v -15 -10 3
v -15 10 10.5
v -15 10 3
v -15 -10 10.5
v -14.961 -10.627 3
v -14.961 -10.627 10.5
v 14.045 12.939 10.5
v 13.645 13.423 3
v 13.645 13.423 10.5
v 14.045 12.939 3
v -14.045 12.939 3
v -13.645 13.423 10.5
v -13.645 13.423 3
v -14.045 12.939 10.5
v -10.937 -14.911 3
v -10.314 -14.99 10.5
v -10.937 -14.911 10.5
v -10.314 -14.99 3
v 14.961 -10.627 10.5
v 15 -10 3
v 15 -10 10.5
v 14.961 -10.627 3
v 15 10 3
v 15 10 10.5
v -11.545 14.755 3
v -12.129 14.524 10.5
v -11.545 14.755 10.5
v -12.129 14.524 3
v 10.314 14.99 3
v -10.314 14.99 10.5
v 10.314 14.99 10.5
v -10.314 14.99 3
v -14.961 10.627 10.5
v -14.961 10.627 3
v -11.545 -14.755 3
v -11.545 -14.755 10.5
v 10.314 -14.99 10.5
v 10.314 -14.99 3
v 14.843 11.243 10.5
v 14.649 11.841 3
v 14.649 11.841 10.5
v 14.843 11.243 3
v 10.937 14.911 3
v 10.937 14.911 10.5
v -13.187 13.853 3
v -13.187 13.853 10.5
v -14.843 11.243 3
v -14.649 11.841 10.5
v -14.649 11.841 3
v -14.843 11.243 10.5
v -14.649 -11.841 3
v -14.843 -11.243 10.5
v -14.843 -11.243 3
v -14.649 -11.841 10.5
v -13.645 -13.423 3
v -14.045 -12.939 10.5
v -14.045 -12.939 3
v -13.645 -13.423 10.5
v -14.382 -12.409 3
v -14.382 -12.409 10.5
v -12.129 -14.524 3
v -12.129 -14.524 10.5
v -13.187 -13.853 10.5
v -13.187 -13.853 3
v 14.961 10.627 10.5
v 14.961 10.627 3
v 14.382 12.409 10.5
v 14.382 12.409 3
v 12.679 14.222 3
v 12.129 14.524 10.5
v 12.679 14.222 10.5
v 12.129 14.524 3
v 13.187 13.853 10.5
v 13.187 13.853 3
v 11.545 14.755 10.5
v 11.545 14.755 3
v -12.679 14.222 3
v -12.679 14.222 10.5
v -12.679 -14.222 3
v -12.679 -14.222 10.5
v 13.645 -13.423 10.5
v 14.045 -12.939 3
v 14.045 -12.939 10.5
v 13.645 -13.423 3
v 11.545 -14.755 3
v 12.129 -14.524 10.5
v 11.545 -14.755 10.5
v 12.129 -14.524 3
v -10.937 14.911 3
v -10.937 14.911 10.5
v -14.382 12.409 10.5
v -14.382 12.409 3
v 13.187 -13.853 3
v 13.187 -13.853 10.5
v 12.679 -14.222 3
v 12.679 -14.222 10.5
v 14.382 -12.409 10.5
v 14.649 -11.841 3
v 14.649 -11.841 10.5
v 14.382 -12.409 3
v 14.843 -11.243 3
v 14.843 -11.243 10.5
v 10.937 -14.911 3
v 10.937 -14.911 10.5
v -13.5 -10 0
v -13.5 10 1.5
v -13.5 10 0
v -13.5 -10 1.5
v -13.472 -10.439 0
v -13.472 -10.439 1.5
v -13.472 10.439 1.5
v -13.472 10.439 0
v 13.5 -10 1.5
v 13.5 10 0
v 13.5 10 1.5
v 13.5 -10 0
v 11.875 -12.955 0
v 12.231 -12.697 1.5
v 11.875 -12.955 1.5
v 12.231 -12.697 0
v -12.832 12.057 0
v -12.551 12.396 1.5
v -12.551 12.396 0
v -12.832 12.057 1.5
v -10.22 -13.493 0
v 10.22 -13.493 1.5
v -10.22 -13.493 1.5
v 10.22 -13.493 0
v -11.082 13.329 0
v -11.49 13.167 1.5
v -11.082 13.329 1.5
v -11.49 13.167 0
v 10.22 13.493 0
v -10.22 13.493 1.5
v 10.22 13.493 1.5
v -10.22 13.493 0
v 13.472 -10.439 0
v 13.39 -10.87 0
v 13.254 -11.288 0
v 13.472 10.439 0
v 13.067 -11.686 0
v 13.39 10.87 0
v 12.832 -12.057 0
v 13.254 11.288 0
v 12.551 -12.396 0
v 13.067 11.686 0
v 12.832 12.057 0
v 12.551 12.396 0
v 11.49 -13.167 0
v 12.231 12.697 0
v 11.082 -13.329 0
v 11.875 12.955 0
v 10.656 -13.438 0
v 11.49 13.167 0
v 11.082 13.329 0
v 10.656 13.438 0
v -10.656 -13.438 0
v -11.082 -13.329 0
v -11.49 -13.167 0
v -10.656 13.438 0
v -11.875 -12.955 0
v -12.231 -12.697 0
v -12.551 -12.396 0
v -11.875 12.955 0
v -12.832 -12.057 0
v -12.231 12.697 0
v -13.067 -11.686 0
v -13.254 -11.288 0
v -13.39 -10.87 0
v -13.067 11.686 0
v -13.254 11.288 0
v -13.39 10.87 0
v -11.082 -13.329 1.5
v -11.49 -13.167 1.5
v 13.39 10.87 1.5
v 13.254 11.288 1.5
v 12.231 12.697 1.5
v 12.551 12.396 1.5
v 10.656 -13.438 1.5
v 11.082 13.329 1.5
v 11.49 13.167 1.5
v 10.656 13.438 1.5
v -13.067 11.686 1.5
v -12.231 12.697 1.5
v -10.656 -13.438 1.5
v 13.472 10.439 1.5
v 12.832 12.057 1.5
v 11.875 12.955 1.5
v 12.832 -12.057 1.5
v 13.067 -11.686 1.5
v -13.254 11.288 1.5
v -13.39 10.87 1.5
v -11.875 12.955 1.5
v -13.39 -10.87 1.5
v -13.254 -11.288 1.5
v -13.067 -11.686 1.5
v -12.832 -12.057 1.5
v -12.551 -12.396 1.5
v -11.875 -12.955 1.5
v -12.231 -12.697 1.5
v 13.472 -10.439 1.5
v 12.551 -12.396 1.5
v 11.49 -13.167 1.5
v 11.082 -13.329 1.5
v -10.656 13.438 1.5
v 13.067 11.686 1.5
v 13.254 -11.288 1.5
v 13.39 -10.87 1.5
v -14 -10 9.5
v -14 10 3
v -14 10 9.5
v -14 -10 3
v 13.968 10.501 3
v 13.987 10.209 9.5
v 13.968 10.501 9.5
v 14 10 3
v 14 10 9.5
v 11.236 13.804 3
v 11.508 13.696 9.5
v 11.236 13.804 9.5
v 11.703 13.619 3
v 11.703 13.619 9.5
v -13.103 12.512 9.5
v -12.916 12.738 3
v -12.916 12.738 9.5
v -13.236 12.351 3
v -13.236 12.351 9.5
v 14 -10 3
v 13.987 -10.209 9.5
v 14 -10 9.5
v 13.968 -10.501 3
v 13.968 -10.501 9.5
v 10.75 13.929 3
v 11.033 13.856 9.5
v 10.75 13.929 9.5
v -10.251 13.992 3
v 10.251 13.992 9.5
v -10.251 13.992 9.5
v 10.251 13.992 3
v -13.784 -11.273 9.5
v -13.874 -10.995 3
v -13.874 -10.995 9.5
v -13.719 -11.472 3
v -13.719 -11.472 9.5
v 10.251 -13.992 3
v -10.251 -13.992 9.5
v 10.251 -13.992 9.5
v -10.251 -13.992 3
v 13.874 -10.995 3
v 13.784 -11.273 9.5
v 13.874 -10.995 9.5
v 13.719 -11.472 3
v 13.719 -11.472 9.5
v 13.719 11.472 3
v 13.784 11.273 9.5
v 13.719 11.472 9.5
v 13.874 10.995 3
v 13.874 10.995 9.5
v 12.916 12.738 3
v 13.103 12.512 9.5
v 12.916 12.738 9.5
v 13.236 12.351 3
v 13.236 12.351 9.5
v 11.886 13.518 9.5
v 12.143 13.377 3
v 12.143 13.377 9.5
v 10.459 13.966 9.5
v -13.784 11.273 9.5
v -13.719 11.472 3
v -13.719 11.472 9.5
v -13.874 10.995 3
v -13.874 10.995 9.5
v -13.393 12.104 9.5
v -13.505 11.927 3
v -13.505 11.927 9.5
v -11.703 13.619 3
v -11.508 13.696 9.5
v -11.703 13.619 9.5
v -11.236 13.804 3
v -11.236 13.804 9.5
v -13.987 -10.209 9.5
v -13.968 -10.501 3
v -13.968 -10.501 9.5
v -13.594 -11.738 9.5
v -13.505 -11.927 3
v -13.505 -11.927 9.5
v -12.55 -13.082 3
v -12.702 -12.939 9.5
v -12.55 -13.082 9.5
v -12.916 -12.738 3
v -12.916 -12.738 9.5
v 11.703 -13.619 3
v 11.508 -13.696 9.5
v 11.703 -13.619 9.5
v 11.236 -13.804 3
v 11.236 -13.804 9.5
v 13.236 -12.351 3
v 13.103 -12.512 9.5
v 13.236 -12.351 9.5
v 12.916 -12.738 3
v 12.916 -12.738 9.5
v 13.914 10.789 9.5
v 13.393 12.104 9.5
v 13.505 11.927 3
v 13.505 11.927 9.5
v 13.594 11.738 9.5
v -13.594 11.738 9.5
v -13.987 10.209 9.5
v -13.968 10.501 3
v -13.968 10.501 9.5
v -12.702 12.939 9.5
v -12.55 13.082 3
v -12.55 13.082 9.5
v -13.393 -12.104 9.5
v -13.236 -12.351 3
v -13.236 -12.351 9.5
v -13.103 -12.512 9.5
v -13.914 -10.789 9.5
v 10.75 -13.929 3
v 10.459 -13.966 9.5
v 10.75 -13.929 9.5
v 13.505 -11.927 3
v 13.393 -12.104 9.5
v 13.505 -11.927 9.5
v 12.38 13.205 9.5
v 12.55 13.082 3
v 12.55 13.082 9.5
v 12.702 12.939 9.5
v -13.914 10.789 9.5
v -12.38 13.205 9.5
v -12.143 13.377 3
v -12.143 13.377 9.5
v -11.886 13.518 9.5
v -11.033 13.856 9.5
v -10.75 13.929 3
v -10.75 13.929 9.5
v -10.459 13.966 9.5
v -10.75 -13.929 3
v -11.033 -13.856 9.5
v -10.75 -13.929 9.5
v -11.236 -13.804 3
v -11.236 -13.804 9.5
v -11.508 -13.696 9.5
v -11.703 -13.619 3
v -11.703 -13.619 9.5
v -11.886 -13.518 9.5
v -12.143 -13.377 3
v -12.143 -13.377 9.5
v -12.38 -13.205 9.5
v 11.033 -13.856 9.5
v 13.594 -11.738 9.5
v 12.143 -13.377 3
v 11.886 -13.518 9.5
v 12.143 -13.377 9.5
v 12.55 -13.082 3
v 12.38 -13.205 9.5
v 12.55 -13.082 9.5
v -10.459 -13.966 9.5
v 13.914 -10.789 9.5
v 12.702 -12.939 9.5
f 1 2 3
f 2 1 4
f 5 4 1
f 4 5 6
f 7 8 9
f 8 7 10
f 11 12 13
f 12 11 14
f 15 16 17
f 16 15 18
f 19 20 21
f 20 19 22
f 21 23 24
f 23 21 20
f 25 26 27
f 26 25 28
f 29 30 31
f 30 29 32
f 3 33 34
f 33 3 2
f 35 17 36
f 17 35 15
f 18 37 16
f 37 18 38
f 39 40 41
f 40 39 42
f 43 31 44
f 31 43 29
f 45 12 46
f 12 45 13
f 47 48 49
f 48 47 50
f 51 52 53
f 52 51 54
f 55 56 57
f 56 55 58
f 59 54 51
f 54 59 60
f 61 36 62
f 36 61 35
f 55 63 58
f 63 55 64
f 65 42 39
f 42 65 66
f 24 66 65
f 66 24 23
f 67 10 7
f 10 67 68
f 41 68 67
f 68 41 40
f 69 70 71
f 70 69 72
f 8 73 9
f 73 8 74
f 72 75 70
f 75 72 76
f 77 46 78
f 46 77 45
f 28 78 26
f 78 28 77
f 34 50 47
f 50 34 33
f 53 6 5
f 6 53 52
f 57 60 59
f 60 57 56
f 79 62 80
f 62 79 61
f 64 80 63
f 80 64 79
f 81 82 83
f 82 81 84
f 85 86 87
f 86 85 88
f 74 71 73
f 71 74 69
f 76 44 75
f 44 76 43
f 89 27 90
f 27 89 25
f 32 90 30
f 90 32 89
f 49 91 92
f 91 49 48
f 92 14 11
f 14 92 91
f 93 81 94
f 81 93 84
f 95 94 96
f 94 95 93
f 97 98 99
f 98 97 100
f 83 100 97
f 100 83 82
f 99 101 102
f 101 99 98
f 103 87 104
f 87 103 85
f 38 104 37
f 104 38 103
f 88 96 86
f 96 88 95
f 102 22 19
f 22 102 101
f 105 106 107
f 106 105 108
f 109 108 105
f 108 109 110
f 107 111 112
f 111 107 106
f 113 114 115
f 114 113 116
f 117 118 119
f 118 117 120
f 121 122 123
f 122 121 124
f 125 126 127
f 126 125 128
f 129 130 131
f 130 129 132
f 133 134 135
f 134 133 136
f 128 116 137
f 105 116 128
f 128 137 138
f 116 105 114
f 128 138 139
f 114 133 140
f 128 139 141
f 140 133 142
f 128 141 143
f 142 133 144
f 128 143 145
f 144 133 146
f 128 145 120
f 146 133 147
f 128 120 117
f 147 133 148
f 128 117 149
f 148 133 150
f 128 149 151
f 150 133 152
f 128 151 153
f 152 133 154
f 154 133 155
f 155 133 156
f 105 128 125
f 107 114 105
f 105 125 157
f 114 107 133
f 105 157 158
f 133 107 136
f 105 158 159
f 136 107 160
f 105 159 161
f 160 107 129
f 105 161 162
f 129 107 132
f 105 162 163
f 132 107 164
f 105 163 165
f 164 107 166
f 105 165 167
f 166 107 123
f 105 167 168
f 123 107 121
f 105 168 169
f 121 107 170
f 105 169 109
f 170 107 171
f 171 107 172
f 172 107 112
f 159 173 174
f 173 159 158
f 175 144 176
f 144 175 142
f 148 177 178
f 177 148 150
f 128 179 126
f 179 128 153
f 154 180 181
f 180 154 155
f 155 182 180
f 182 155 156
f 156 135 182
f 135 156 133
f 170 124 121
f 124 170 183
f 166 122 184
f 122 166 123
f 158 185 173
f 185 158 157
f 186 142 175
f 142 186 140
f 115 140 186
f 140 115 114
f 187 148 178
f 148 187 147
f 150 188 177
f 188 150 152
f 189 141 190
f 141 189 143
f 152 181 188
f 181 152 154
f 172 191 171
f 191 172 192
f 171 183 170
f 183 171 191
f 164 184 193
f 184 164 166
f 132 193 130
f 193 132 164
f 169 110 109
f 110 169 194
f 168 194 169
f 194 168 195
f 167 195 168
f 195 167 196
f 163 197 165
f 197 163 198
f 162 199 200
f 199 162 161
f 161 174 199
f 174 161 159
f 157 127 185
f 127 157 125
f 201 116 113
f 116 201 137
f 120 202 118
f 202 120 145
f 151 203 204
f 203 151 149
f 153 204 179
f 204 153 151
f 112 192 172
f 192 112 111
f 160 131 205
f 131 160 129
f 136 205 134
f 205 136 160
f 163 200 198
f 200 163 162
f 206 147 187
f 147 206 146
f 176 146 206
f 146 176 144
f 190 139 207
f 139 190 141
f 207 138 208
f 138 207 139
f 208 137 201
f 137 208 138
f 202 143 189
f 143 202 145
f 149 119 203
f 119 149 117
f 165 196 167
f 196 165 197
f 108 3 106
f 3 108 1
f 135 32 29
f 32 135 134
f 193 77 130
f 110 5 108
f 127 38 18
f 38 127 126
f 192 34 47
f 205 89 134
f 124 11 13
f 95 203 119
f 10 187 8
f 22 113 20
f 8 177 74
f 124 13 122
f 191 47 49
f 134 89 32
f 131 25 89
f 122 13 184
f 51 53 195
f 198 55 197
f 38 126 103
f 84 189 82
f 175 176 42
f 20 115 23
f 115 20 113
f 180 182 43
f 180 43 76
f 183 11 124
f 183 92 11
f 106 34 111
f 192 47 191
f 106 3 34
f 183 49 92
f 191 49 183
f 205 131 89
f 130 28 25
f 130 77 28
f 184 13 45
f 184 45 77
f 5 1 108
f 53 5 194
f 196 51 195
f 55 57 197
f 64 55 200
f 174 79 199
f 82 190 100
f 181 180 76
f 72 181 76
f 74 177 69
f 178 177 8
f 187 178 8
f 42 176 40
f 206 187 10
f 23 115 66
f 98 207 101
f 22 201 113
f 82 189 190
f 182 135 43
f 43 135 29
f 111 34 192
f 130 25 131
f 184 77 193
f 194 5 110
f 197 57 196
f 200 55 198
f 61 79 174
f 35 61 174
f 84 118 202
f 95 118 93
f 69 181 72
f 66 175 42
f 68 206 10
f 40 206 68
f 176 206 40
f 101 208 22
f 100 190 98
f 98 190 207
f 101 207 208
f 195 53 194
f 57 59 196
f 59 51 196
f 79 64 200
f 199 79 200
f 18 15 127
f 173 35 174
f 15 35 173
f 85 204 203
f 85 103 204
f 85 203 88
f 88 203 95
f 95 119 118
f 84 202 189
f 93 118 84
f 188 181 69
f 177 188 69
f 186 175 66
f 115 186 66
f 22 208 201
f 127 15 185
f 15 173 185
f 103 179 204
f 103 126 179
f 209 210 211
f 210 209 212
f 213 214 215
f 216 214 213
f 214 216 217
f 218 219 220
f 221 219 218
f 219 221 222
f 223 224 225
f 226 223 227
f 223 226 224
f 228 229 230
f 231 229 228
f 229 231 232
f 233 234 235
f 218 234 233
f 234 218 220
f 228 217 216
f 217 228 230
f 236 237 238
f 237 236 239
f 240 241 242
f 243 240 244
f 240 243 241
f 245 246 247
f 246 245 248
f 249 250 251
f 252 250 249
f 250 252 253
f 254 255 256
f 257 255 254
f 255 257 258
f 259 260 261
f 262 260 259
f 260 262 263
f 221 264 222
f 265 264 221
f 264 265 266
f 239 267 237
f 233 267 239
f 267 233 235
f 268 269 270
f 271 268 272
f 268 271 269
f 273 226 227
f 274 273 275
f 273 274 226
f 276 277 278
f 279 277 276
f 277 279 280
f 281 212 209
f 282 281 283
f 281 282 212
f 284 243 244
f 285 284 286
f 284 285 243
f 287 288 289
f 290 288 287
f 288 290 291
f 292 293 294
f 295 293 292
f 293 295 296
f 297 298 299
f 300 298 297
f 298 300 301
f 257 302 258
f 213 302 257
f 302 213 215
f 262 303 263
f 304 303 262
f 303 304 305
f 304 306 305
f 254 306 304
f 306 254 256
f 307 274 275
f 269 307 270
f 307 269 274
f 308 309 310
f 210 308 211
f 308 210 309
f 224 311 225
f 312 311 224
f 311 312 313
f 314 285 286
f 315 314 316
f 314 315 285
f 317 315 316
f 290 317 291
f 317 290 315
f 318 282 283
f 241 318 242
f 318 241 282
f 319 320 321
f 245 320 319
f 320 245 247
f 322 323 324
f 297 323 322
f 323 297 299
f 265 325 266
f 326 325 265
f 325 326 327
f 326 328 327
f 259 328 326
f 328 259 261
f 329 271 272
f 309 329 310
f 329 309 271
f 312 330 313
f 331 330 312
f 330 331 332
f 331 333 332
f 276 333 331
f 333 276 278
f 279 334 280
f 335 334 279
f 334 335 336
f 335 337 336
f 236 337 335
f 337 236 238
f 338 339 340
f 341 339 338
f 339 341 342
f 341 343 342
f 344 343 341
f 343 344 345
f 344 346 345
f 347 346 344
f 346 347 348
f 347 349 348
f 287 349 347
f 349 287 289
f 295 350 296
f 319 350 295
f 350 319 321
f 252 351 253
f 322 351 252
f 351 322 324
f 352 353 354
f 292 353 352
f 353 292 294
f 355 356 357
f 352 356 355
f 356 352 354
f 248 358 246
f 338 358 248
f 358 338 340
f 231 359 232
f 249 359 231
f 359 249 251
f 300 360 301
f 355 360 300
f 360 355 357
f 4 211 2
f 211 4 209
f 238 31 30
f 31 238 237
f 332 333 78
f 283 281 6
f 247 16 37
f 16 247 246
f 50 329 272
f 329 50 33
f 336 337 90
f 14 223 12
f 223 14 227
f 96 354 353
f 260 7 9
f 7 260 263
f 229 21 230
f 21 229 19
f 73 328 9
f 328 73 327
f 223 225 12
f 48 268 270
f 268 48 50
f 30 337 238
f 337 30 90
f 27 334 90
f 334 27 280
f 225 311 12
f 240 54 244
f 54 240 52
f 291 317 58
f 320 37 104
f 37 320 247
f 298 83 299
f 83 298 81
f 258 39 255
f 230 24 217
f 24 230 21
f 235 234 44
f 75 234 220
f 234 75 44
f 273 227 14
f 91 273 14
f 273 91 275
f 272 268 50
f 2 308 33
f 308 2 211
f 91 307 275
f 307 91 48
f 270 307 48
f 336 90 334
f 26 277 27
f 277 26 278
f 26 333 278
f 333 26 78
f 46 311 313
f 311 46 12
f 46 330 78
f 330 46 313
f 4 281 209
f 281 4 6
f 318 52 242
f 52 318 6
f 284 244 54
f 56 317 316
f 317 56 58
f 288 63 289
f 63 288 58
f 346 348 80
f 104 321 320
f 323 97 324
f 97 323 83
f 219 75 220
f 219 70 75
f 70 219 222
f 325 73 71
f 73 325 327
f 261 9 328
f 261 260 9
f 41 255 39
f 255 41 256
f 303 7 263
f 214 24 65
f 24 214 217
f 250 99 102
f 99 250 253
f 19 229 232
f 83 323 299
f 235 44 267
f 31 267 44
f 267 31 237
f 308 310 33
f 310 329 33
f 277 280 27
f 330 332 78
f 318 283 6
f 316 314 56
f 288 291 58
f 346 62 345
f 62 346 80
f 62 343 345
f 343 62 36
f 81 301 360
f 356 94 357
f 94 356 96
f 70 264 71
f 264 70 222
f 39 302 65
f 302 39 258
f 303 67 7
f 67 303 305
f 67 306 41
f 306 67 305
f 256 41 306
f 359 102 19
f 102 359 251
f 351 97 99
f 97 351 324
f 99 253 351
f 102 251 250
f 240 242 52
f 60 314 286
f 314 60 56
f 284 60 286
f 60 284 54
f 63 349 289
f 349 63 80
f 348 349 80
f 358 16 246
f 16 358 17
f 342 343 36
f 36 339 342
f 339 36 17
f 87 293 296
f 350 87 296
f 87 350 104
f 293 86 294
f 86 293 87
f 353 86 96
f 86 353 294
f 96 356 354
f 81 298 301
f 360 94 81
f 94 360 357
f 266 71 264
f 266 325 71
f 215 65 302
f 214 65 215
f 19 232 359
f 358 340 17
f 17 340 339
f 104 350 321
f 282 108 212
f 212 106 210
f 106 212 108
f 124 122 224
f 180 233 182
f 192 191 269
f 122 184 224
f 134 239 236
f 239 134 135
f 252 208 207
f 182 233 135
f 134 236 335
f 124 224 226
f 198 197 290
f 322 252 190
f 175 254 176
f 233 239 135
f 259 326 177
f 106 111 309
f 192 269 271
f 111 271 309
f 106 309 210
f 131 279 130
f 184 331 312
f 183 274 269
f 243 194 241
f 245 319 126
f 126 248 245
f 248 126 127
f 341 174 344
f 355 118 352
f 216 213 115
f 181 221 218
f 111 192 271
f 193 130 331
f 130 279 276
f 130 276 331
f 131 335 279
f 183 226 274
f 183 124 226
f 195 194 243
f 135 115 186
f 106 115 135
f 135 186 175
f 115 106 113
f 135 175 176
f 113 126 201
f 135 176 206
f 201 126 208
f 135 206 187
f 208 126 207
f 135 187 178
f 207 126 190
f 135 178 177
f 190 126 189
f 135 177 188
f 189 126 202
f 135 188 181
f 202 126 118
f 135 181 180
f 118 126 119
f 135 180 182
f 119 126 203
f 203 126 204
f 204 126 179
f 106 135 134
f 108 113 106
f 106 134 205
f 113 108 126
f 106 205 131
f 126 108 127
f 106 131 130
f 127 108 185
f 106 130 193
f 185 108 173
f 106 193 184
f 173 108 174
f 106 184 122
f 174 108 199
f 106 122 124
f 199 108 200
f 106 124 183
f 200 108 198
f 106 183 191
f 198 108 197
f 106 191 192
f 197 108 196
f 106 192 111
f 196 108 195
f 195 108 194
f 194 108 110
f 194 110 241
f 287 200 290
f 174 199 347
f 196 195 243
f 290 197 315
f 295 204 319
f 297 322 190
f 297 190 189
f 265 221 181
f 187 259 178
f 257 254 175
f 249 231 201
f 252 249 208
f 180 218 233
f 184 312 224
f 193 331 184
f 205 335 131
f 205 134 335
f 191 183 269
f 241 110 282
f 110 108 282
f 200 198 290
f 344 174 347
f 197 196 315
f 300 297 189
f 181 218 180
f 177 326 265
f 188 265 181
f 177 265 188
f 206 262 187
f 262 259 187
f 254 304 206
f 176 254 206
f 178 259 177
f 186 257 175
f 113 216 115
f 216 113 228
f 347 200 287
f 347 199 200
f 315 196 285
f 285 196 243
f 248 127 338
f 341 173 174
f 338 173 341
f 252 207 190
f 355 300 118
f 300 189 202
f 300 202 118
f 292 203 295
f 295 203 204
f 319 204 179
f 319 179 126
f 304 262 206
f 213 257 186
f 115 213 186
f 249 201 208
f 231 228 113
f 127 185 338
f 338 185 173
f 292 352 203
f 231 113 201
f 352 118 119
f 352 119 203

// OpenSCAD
$fn = 50;


difference() {
	union() {
		translate(v = [0, 0, 3.0000000000]) {
			hull() {
				translate(v = [-10.0000000000, 10.0000000000, 0]) {
					cylinder(h = 7.5000000000, r = 5);
				}
				translate(v = [10.0000000000, 10.0000000000, 0]) {
					cylinder(h = 7.5000000000, r = 5);
				}
				translate(v = [-10.0000000000, -10.0000000000, 0]) {
					cylinder(h = 7.5000000000, r = 5);
				}
				translate(v = [10.0000000000, -10.0000000000, 0]) {
					cylinder(h = 7.5000000000, r = 5);
				}
			}
		}
		hull() {
			translate(v = [-10.0000000000, 10.0000000000, 0]) {
				cylinder(h = 1.5000000000, r = 3.5000000000);
			}
			translate(v = [10.0000000000, 10.0000000000, 0]) {
				cylinder(h = 1.5000000000, r = 3.5000000000);
			}
			translate(v = [-10.0000000000, -10.0000000000, 0]) {
				cylinder(h = 1.5000000000, r = 3.5000000000);
			}
			translate(v = [10.0000000000, -10.0000000000, 0]) {
				cylinder(h = 1.5000000000, r = 3.5000000000);
			}
		}
		translate(v = [0, 0, 1.5000000000]) {
			hull() {
				translate(v = [-10.0000000000, 10.0000000000, 0]) {
					cylinder(h = 1.5000000000, r = 5, r1 = 3.5000000000, r2 = 5);
				}
				translate(v = [10.0000000000, 10.0000000000, 0]) {
					cylinder(h = 1.5000000000, r = 5, r1 = 3.5000000000, r2 = 5);
				}
				translate(v = [-10.0000000000, -10.0000000000, 0]) {
					cylinder(h = 1.5000000000, r = 5, r1 = 3.5000000000, r2 = 5);
				}
				translate(v = [10.0000000000, -10.0000000000, 0]) {
					cylinder(h = 1.5000000000, r = 5, r1 = 3.5000000000, r2 = 5);
				}
			}
		}
	}
	union() {
		translate(v = [0, 0, 3.0000000000]) {
			hull() {
				translate(v = [-10.0000000000, 10.0000000000, 0]) {
					cylinder(h = 7.5000000000, r = 4);
				}
				translate(v = [10.0000000000, 10.0000000000, 0]) {
					cylinder(h = 7.5000000000, r = 4);
				}
				translate(v = [-10.0000000000, -10.0000000000, 0]) {
					cylinder(h = 7.5000000000, r = 4);
				}
				translate(v = [10.0000000000, -10.0000000000, 0]) {
					cylinder(h = 7.5000000000, r = 4);
				}
			}
		}
		translate(v = [0, 0, 9]) {
			hull() {
				translate(v = [-10.0000000000, 10.0000000000, 0]) {
					cylinder(h = 1.5000000000, r = 5, r1 = 3.5000000000, r2 = 5);
				}
				translate(v = [10.0000000000, 10.0000000000, 0]) {
					cylinder(h = 1.5000000000, r = 5, r1 = 3.5000000000, r2 = 5);
				}
				translate(v = [-10.0000000000, -10.0000000000, 0]) {
					cylinder(h = 1.5000000000, r = 5, r1 = 3.5000000000, r2 = 5);
				}
				translate(v = [10.0000000000, -10.0000000000, 0]) {
					cylinder(h = 1.5000000000, r = 5, r1 = 3.5000000000, r2 = 5);
				}
			}
		}
		translate(v = [0, 0, 1.5000000000]) {
			hull() {
				translate(v = [-10.0000000000, 10.0000000000, 0]) {
					cylinder(h = 1.5000000000, r = 5, r1 = 3.5000000000, r2 = 4);
				}
				translate(v = [10.0000000000, 10.0000000000, 0]) {
					cylinder(h = 1.5000000000, r = 5, r1 = 3.5000000000, r2 = 4);
				}
				translate(v = [-10.0000000000, -10.0000000000, 0]) {
					cylinder(h = 1.5000000000, r = 5, r1 = 3.5000000000, r2 = 4);
				}
				translate(v = [10.0000000000, -10.0000000000, 0]) {
					cylinder(h = 1.5000000000, r = 5, r1 = 3.5000000000, r2 = 4);
				}
			}
		}
	}
}
